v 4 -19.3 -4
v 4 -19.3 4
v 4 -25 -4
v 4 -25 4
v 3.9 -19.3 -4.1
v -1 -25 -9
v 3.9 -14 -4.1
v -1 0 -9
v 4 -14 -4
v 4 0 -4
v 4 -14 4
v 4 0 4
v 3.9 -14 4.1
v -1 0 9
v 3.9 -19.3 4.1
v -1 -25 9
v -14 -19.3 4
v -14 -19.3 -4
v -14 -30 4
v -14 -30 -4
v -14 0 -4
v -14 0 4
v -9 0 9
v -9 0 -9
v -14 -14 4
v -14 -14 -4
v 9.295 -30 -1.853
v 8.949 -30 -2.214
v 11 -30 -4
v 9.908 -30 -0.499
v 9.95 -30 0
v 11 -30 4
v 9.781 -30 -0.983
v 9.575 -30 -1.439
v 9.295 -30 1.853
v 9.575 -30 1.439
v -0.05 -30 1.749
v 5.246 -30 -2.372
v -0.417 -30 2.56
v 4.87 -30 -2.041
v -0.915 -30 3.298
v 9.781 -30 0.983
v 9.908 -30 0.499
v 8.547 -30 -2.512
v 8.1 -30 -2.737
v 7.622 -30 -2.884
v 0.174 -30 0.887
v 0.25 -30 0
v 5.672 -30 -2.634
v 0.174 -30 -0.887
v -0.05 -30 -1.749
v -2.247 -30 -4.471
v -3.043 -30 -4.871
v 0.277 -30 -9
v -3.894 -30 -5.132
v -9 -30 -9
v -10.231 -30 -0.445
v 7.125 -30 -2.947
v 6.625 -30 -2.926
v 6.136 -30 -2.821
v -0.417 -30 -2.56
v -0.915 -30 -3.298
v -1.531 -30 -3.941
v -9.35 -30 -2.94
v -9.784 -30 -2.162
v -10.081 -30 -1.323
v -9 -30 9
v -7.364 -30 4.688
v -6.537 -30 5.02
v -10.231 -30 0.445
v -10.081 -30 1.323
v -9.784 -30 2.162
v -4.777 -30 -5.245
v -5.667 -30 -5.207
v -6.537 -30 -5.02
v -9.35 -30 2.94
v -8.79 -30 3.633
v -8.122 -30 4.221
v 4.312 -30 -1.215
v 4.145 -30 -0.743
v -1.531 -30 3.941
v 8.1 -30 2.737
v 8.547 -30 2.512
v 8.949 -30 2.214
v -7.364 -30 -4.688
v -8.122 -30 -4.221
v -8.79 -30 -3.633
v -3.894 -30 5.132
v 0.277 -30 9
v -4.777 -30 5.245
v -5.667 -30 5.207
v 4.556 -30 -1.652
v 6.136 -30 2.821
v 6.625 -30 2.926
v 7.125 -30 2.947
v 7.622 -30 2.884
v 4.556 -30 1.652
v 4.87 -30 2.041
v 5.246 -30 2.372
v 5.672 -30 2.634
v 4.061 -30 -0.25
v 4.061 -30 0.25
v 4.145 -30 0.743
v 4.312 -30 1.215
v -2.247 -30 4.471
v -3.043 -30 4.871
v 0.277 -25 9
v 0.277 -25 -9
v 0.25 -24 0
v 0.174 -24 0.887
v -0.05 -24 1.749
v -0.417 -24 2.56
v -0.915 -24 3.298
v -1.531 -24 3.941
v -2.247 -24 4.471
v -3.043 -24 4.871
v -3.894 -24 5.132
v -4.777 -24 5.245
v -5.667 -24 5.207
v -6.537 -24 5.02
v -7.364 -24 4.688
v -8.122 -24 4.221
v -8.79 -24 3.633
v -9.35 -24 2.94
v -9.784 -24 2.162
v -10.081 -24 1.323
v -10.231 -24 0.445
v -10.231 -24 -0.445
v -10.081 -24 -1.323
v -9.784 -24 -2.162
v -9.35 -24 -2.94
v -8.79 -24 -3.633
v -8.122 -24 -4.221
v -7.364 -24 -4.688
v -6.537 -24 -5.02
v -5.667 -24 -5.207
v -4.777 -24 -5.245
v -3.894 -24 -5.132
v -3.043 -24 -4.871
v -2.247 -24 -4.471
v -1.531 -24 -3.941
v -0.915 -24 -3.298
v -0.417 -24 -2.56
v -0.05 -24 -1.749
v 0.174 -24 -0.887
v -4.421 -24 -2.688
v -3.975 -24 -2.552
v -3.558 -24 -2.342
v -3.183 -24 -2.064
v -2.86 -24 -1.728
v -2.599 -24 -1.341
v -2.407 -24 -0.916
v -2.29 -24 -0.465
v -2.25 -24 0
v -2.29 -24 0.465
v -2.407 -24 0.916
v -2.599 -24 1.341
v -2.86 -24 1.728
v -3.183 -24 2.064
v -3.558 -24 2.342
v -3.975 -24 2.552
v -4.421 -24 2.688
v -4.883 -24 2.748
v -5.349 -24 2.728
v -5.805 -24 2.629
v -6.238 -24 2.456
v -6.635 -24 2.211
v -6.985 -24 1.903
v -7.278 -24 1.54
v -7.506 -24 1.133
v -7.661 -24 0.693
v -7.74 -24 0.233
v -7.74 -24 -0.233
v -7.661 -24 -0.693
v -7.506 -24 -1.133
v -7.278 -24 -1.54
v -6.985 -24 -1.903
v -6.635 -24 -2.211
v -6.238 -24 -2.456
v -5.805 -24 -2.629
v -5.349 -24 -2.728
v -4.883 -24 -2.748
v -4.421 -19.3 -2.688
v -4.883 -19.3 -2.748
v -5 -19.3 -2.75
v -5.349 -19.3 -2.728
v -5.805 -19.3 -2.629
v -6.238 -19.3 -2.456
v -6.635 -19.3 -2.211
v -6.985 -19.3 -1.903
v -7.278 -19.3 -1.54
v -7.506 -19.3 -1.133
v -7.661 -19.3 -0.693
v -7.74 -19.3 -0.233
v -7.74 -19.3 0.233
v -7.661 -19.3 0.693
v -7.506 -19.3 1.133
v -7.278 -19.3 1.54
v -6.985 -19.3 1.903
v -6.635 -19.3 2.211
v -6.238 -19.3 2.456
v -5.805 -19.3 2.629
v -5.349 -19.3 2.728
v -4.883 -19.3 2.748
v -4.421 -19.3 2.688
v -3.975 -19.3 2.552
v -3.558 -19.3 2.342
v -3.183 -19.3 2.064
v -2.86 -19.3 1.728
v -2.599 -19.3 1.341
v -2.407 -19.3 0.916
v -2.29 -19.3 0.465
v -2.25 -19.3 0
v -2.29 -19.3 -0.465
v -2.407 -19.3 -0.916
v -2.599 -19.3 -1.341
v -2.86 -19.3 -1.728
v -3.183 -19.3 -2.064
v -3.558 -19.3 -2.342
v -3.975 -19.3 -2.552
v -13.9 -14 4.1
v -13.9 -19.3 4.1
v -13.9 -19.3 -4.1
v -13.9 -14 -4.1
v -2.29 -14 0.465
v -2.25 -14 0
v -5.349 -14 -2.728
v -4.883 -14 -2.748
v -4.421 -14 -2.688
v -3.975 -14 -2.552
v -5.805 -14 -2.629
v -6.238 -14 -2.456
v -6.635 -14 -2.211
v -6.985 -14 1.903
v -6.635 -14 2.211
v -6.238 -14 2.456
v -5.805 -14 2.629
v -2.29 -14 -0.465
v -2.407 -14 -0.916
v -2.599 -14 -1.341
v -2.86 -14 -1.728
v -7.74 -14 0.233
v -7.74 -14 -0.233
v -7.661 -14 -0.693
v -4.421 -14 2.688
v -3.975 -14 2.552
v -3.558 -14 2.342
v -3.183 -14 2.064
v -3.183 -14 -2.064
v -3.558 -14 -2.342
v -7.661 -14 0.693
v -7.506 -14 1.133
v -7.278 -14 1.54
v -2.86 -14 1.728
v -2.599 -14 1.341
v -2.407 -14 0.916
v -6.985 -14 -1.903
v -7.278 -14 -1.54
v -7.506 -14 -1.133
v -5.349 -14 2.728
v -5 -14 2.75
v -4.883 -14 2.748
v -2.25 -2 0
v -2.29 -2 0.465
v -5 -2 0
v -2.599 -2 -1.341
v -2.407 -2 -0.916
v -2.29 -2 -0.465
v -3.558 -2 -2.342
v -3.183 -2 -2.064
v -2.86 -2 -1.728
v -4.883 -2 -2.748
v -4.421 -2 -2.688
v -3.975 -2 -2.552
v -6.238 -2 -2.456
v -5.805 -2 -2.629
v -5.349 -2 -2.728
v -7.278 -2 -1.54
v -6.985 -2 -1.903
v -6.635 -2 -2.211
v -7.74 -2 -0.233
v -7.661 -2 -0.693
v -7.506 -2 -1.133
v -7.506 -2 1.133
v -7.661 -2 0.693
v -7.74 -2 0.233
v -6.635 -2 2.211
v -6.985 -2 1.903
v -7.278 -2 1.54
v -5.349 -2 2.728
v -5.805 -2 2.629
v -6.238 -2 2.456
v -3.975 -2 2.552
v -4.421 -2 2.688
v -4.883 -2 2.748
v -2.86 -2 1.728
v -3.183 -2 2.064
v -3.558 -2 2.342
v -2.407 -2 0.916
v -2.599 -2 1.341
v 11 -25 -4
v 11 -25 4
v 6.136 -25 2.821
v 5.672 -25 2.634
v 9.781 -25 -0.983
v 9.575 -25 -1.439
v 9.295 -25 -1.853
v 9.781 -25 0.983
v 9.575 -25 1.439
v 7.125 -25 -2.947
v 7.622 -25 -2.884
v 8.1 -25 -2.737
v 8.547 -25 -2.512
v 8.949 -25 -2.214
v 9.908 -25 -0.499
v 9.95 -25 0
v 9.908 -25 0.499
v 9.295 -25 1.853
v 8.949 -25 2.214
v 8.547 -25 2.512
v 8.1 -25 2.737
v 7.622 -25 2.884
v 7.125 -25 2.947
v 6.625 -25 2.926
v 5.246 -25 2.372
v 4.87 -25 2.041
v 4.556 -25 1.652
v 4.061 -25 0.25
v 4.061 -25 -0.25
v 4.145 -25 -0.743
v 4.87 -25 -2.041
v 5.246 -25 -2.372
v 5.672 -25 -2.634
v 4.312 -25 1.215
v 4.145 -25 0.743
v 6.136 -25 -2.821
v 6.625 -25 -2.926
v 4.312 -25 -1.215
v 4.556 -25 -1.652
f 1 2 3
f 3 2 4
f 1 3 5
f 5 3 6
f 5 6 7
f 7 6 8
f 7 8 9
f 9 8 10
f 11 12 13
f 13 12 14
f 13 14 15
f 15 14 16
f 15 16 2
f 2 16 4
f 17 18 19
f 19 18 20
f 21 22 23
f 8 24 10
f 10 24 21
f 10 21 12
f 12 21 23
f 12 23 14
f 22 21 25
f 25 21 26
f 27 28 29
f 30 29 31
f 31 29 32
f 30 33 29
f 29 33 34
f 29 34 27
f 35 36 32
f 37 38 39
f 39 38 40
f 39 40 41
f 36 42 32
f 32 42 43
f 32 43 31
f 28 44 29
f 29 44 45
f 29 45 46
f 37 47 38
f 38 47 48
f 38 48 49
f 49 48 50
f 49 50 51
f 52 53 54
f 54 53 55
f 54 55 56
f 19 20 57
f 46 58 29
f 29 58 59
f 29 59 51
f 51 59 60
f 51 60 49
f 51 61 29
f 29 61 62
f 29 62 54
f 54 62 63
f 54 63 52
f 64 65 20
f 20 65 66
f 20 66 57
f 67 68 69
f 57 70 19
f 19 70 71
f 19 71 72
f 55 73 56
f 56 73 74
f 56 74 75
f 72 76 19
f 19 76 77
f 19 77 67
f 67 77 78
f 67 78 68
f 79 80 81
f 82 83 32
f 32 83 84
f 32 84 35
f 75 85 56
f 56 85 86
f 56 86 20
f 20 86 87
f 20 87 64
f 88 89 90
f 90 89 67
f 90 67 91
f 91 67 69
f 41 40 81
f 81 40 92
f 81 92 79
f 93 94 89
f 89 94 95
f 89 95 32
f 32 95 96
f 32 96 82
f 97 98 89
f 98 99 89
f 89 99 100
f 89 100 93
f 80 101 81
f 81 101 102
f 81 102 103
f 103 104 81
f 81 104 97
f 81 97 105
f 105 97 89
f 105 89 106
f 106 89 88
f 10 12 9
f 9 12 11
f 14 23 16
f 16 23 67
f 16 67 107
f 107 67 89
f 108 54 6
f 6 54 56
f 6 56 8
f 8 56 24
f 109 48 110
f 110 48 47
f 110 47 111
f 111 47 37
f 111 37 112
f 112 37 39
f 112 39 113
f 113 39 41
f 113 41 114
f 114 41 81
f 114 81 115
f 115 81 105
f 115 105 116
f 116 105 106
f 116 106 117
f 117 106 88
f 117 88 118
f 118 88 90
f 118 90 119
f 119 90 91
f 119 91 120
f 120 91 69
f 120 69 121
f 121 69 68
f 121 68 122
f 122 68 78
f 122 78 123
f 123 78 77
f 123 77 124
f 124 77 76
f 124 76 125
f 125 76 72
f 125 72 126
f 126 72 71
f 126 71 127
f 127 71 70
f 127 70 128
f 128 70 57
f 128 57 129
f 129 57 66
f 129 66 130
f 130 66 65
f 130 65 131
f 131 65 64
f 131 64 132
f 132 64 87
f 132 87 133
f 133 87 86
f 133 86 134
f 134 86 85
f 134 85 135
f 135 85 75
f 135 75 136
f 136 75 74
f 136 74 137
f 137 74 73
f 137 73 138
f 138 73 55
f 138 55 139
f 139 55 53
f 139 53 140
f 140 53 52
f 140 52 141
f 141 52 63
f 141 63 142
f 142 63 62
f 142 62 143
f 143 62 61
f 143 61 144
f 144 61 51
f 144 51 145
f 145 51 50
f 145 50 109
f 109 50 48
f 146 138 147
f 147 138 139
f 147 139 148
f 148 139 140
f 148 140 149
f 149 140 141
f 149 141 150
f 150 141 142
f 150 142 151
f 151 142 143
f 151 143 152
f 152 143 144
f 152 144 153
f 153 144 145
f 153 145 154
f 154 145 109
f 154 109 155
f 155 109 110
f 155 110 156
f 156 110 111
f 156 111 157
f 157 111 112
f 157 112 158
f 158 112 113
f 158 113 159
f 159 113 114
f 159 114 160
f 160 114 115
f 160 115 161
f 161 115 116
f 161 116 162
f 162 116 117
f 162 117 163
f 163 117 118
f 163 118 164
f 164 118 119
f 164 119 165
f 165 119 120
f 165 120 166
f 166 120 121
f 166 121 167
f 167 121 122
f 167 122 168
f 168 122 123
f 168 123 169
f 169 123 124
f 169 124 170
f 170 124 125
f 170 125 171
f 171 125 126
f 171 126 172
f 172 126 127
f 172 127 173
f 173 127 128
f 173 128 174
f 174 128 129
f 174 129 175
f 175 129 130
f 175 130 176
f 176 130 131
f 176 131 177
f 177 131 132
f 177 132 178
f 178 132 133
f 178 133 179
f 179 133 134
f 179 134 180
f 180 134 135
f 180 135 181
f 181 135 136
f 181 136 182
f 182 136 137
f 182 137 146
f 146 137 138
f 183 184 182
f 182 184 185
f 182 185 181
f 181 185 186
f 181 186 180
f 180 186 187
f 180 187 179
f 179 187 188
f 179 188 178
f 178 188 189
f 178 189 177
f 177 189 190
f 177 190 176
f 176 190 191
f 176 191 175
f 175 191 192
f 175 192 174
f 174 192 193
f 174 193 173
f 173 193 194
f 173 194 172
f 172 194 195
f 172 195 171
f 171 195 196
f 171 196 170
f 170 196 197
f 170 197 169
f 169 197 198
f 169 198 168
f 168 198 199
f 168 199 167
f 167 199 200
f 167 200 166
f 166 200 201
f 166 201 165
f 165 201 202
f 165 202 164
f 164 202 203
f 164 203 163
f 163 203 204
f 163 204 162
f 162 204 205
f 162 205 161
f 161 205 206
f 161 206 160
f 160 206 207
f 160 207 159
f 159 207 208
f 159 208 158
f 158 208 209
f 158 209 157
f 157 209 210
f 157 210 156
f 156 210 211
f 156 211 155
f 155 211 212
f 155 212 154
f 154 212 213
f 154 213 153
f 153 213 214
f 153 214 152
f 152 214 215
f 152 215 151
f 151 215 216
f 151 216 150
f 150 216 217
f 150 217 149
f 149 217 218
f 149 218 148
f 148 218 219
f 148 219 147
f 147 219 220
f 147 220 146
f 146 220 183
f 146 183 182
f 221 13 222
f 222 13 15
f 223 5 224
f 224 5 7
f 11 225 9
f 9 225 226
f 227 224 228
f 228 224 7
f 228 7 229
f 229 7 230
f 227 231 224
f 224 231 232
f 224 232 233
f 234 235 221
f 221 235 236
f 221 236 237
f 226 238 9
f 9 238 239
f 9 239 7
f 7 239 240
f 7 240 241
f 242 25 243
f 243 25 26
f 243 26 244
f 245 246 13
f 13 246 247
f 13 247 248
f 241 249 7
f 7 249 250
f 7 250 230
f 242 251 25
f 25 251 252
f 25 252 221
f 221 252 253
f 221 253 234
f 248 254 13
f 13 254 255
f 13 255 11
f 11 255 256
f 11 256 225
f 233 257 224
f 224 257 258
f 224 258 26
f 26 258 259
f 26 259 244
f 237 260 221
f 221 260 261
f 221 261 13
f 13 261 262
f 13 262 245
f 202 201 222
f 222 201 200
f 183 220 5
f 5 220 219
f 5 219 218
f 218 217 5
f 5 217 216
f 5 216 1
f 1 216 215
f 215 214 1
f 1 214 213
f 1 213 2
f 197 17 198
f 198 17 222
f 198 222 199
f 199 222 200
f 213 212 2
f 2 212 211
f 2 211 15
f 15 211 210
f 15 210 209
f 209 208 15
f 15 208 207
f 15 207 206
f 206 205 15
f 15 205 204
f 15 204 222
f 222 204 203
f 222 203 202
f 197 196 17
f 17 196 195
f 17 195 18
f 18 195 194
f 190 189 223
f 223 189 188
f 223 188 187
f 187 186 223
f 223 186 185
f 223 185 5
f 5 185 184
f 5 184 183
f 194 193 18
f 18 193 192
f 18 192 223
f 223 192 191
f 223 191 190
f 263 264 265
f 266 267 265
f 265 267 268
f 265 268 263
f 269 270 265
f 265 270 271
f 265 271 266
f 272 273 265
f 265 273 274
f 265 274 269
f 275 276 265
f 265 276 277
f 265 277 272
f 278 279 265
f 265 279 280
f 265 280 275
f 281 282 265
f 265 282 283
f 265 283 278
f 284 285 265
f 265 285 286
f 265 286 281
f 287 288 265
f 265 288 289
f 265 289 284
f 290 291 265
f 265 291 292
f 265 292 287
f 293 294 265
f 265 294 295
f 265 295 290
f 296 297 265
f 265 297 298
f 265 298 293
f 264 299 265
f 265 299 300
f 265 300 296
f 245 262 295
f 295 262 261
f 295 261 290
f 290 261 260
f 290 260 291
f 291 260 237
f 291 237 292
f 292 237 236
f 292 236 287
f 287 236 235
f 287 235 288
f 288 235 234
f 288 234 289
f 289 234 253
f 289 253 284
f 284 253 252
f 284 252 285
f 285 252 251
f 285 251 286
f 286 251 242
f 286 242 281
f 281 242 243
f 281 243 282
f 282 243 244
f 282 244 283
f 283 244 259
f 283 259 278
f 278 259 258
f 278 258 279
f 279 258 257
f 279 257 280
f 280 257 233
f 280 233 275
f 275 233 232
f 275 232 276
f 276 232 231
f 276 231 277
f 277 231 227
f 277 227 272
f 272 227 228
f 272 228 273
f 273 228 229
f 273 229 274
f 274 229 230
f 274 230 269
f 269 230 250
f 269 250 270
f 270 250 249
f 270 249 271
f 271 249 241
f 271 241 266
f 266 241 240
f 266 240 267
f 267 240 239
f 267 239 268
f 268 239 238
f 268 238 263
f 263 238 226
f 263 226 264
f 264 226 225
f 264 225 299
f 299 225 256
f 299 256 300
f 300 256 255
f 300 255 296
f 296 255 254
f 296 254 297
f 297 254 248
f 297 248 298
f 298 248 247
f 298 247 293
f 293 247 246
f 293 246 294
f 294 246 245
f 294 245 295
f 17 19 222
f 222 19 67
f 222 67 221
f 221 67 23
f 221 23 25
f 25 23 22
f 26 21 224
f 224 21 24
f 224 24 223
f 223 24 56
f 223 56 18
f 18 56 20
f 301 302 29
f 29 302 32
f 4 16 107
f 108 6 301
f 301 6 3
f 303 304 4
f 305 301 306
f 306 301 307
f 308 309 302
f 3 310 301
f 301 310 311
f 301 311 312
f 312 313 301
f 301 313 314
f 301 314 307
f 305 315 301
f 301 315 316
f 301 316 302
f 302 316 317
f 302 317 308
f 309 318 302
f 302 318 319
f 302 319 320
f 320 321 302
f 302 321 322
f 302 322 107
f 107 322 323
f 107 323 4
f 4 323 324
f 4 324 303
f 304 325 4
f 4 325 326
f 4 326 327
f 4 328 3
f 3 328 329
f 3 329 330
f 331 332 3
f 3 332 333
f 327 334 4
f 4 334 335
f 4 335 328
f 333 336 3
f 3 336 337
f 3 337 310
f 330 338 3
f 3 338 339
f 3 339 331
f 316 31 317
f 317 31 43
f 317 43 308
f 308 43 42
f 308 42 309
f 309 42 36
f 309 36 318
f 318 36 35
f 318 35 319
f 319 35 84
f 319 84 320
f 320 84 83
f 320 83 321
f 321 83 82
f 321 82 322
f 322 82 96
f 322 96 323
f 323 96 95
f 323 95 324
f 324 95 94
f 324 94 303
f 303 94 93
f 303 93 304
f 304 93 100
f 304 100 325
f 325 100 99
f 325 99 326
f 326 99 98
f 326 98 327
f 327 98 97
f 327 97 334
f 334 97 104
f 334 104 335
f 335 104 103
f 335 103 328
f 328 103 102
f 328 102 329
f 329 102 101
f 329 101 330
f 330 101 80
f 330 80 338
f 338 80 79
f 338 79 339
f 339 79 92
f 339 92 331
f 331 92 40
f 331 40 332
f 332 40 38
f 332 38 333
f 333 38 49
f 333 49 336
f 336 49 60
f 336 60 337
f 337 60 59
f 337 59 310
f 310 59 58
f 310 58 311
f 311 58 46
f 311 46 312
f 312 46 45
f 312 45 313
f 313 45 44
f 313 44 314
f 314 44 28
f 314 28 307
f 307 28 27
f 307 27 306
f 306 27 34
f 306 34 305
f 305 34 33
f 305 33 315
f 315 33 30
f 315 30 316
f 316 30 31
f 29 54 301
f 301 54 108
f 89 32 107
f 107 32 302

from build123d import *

# Parameters (mm, degrees)
SKETCH1_W           = 18
SKETCH1_H           = 30
BOSS_EXTRUDE1_DEPTH = 9
SKETCH2_R           = 5.25
CUT_EXTRUDE1_DEPTH  = 6
SKETCH4_R           = 2.75
CUT_EXTRUDE3_DEPTH  = 28
CUT_EXTRUDE4_REACH  = 38.125
SKETCH5_W           = 8.2
SKETCH5_H           = 5.3
CHAMFER3_SIZE       = 5
SKETCH6_R           = 2.95
BOSS_EXTRUDE2_DEPTH = 5
CHAMFER4_SIZE       = 5
CHAMFER4_SIZE2      = 10.722534603


with BuildPart() as part:
    # Sketch1 → Boss-Extrude1 (new, symmetric)
    with BuildSketch(Plane.XY):
        with Locations((-5, -15)):
            Rectangle(SKETCH1_W, SKETCH1_H)
    extrude(amount=BOSS_EXTRUDE1_DEPTH, both=True)

    # Sketch2 → Cut-Extrude1 (cut)
    with BuildSketch(Plane.XZ.offset(30)):
        with Locations((-5, 0)):
            Circle(SKETCH2_R)
    extrude(amount=-CUT_EXTRUDE1_DEPTH, mode=Mode.SUBTRACT)

    # Sketch4 → Cut-Extrude3 (cut)
    with BuildSketch(Plane.XZ.offset(30)):
        with Locations((-5, 0)):
            Circle(SKETCH4_R)
    extrude(amount=-CUT_EXTRUDE3_DEPTH, mode=Mode.SUBTRACT)

    # Sketch5 → Cut-Extrude4 (cut, up to next)
    with BuildSketch(Plane(origin=(4, 0, 0), x_dir=(0, 0, -1), z_dir=(1, 0, 0)), mode=Mode.PRIVATE) as cut_extrude4_sk1:
        with Locations((0, -16.65)):
            Rectangle(SKETCH5_W, SKETCH5_H)
    cut_extrude4_tool1 = extrude(cut_extrude4_sk1.sketch, amount=-CUT_EXTRUDE4_REACH, mode=Mode.PRIVATE) & part.part
    add(cut_extrude4_tool1.solids().sort_by_distance((4, -16.65, 0))[0], mode=Mode.SUBTRACT)

    # Chamfer3
    # the kernel refuses this chamfer: 5 mm, written as the material it takes off along each edge
    with BuildSketch(Plane(origin=(-14, -42.85841494, 9), x_dir=(0.9996219169112968, 0, 0.027495876610586317), z_dir=(0, 1, 0)), Plane(origin=(4, 12.85841494, -9), x_dir=(0.027495876610586317, 0, 0.9996219169112968), z_dir=(0, -1, 0))) as chamfer3_piece_1:
        Polygon((CHAMFER3_SIZE * 0.999621916911, CHAMFER3_SIZE * 0.0274958766106), (-CHAMFER3_SIZE * 0.0274958766106, CHAMFER3_SIZE * 0.999621916911), (0, 0), align=None)
    extrude(amount=55.71682988, mode=Mode.SUBTRACT)
    with BuildSketch(Plane(origin=(-14, -42.85841494, -9), x_dir=(0.9996219169112968, 0, -0.027495876610586317), z_dir=(0, 1, 0)), Plane(origin=(4, 12.85841494, 9), x_dir=(0.027495876610586317, 0, -0.9996219169112968), z_dir=(0, -1, 0))) as chamfer3_piece_2:
        Polygon((CHAMFER3_SIZE * 0.999621916911, -CHAMFER3_SIZE * 0.0274958766106), (-CHAMFER3_SIZE * 0.0274958766106, -CHAMFER3_SIZE * 0.999621916911), (0, 0), align=None)
    extrude(amount=55.71682988, mode=Mode.SUBTRACT)

    # Sketch6 → Boss-Extrude2 (add)
    with BuildSketch(Plane.XZ.offset(30)):
        Polygon((-1, -9), (11, -9), (11, 9), (-1, 9), (4, 4), (4, -4), align=None)
        with Locations((7, 0)):
            Circle(SKETCH6_R, mode=Mode.SUBTRACT)
    extrude(amount=-BOSS_EXTRUDE2_DEPTH)

    # Chamfer4
    chamfer4_edges = [part.edges().sort_by_distance(p)[0] for p in [
        (11, -27.5, 9),
        (11, -27.5, -9),
    ]]
    chamfer4_side = [part.faces().sort_by_distance(p)[0] for p in [
        (11, -27.5, 0),
    ]]
    chamfer(chamfer4_edges, length=CHAMFER4_SIZE, length2=CHAMFER4_SIZE2, reference=chamfer4_side[0])


solid = part.part
